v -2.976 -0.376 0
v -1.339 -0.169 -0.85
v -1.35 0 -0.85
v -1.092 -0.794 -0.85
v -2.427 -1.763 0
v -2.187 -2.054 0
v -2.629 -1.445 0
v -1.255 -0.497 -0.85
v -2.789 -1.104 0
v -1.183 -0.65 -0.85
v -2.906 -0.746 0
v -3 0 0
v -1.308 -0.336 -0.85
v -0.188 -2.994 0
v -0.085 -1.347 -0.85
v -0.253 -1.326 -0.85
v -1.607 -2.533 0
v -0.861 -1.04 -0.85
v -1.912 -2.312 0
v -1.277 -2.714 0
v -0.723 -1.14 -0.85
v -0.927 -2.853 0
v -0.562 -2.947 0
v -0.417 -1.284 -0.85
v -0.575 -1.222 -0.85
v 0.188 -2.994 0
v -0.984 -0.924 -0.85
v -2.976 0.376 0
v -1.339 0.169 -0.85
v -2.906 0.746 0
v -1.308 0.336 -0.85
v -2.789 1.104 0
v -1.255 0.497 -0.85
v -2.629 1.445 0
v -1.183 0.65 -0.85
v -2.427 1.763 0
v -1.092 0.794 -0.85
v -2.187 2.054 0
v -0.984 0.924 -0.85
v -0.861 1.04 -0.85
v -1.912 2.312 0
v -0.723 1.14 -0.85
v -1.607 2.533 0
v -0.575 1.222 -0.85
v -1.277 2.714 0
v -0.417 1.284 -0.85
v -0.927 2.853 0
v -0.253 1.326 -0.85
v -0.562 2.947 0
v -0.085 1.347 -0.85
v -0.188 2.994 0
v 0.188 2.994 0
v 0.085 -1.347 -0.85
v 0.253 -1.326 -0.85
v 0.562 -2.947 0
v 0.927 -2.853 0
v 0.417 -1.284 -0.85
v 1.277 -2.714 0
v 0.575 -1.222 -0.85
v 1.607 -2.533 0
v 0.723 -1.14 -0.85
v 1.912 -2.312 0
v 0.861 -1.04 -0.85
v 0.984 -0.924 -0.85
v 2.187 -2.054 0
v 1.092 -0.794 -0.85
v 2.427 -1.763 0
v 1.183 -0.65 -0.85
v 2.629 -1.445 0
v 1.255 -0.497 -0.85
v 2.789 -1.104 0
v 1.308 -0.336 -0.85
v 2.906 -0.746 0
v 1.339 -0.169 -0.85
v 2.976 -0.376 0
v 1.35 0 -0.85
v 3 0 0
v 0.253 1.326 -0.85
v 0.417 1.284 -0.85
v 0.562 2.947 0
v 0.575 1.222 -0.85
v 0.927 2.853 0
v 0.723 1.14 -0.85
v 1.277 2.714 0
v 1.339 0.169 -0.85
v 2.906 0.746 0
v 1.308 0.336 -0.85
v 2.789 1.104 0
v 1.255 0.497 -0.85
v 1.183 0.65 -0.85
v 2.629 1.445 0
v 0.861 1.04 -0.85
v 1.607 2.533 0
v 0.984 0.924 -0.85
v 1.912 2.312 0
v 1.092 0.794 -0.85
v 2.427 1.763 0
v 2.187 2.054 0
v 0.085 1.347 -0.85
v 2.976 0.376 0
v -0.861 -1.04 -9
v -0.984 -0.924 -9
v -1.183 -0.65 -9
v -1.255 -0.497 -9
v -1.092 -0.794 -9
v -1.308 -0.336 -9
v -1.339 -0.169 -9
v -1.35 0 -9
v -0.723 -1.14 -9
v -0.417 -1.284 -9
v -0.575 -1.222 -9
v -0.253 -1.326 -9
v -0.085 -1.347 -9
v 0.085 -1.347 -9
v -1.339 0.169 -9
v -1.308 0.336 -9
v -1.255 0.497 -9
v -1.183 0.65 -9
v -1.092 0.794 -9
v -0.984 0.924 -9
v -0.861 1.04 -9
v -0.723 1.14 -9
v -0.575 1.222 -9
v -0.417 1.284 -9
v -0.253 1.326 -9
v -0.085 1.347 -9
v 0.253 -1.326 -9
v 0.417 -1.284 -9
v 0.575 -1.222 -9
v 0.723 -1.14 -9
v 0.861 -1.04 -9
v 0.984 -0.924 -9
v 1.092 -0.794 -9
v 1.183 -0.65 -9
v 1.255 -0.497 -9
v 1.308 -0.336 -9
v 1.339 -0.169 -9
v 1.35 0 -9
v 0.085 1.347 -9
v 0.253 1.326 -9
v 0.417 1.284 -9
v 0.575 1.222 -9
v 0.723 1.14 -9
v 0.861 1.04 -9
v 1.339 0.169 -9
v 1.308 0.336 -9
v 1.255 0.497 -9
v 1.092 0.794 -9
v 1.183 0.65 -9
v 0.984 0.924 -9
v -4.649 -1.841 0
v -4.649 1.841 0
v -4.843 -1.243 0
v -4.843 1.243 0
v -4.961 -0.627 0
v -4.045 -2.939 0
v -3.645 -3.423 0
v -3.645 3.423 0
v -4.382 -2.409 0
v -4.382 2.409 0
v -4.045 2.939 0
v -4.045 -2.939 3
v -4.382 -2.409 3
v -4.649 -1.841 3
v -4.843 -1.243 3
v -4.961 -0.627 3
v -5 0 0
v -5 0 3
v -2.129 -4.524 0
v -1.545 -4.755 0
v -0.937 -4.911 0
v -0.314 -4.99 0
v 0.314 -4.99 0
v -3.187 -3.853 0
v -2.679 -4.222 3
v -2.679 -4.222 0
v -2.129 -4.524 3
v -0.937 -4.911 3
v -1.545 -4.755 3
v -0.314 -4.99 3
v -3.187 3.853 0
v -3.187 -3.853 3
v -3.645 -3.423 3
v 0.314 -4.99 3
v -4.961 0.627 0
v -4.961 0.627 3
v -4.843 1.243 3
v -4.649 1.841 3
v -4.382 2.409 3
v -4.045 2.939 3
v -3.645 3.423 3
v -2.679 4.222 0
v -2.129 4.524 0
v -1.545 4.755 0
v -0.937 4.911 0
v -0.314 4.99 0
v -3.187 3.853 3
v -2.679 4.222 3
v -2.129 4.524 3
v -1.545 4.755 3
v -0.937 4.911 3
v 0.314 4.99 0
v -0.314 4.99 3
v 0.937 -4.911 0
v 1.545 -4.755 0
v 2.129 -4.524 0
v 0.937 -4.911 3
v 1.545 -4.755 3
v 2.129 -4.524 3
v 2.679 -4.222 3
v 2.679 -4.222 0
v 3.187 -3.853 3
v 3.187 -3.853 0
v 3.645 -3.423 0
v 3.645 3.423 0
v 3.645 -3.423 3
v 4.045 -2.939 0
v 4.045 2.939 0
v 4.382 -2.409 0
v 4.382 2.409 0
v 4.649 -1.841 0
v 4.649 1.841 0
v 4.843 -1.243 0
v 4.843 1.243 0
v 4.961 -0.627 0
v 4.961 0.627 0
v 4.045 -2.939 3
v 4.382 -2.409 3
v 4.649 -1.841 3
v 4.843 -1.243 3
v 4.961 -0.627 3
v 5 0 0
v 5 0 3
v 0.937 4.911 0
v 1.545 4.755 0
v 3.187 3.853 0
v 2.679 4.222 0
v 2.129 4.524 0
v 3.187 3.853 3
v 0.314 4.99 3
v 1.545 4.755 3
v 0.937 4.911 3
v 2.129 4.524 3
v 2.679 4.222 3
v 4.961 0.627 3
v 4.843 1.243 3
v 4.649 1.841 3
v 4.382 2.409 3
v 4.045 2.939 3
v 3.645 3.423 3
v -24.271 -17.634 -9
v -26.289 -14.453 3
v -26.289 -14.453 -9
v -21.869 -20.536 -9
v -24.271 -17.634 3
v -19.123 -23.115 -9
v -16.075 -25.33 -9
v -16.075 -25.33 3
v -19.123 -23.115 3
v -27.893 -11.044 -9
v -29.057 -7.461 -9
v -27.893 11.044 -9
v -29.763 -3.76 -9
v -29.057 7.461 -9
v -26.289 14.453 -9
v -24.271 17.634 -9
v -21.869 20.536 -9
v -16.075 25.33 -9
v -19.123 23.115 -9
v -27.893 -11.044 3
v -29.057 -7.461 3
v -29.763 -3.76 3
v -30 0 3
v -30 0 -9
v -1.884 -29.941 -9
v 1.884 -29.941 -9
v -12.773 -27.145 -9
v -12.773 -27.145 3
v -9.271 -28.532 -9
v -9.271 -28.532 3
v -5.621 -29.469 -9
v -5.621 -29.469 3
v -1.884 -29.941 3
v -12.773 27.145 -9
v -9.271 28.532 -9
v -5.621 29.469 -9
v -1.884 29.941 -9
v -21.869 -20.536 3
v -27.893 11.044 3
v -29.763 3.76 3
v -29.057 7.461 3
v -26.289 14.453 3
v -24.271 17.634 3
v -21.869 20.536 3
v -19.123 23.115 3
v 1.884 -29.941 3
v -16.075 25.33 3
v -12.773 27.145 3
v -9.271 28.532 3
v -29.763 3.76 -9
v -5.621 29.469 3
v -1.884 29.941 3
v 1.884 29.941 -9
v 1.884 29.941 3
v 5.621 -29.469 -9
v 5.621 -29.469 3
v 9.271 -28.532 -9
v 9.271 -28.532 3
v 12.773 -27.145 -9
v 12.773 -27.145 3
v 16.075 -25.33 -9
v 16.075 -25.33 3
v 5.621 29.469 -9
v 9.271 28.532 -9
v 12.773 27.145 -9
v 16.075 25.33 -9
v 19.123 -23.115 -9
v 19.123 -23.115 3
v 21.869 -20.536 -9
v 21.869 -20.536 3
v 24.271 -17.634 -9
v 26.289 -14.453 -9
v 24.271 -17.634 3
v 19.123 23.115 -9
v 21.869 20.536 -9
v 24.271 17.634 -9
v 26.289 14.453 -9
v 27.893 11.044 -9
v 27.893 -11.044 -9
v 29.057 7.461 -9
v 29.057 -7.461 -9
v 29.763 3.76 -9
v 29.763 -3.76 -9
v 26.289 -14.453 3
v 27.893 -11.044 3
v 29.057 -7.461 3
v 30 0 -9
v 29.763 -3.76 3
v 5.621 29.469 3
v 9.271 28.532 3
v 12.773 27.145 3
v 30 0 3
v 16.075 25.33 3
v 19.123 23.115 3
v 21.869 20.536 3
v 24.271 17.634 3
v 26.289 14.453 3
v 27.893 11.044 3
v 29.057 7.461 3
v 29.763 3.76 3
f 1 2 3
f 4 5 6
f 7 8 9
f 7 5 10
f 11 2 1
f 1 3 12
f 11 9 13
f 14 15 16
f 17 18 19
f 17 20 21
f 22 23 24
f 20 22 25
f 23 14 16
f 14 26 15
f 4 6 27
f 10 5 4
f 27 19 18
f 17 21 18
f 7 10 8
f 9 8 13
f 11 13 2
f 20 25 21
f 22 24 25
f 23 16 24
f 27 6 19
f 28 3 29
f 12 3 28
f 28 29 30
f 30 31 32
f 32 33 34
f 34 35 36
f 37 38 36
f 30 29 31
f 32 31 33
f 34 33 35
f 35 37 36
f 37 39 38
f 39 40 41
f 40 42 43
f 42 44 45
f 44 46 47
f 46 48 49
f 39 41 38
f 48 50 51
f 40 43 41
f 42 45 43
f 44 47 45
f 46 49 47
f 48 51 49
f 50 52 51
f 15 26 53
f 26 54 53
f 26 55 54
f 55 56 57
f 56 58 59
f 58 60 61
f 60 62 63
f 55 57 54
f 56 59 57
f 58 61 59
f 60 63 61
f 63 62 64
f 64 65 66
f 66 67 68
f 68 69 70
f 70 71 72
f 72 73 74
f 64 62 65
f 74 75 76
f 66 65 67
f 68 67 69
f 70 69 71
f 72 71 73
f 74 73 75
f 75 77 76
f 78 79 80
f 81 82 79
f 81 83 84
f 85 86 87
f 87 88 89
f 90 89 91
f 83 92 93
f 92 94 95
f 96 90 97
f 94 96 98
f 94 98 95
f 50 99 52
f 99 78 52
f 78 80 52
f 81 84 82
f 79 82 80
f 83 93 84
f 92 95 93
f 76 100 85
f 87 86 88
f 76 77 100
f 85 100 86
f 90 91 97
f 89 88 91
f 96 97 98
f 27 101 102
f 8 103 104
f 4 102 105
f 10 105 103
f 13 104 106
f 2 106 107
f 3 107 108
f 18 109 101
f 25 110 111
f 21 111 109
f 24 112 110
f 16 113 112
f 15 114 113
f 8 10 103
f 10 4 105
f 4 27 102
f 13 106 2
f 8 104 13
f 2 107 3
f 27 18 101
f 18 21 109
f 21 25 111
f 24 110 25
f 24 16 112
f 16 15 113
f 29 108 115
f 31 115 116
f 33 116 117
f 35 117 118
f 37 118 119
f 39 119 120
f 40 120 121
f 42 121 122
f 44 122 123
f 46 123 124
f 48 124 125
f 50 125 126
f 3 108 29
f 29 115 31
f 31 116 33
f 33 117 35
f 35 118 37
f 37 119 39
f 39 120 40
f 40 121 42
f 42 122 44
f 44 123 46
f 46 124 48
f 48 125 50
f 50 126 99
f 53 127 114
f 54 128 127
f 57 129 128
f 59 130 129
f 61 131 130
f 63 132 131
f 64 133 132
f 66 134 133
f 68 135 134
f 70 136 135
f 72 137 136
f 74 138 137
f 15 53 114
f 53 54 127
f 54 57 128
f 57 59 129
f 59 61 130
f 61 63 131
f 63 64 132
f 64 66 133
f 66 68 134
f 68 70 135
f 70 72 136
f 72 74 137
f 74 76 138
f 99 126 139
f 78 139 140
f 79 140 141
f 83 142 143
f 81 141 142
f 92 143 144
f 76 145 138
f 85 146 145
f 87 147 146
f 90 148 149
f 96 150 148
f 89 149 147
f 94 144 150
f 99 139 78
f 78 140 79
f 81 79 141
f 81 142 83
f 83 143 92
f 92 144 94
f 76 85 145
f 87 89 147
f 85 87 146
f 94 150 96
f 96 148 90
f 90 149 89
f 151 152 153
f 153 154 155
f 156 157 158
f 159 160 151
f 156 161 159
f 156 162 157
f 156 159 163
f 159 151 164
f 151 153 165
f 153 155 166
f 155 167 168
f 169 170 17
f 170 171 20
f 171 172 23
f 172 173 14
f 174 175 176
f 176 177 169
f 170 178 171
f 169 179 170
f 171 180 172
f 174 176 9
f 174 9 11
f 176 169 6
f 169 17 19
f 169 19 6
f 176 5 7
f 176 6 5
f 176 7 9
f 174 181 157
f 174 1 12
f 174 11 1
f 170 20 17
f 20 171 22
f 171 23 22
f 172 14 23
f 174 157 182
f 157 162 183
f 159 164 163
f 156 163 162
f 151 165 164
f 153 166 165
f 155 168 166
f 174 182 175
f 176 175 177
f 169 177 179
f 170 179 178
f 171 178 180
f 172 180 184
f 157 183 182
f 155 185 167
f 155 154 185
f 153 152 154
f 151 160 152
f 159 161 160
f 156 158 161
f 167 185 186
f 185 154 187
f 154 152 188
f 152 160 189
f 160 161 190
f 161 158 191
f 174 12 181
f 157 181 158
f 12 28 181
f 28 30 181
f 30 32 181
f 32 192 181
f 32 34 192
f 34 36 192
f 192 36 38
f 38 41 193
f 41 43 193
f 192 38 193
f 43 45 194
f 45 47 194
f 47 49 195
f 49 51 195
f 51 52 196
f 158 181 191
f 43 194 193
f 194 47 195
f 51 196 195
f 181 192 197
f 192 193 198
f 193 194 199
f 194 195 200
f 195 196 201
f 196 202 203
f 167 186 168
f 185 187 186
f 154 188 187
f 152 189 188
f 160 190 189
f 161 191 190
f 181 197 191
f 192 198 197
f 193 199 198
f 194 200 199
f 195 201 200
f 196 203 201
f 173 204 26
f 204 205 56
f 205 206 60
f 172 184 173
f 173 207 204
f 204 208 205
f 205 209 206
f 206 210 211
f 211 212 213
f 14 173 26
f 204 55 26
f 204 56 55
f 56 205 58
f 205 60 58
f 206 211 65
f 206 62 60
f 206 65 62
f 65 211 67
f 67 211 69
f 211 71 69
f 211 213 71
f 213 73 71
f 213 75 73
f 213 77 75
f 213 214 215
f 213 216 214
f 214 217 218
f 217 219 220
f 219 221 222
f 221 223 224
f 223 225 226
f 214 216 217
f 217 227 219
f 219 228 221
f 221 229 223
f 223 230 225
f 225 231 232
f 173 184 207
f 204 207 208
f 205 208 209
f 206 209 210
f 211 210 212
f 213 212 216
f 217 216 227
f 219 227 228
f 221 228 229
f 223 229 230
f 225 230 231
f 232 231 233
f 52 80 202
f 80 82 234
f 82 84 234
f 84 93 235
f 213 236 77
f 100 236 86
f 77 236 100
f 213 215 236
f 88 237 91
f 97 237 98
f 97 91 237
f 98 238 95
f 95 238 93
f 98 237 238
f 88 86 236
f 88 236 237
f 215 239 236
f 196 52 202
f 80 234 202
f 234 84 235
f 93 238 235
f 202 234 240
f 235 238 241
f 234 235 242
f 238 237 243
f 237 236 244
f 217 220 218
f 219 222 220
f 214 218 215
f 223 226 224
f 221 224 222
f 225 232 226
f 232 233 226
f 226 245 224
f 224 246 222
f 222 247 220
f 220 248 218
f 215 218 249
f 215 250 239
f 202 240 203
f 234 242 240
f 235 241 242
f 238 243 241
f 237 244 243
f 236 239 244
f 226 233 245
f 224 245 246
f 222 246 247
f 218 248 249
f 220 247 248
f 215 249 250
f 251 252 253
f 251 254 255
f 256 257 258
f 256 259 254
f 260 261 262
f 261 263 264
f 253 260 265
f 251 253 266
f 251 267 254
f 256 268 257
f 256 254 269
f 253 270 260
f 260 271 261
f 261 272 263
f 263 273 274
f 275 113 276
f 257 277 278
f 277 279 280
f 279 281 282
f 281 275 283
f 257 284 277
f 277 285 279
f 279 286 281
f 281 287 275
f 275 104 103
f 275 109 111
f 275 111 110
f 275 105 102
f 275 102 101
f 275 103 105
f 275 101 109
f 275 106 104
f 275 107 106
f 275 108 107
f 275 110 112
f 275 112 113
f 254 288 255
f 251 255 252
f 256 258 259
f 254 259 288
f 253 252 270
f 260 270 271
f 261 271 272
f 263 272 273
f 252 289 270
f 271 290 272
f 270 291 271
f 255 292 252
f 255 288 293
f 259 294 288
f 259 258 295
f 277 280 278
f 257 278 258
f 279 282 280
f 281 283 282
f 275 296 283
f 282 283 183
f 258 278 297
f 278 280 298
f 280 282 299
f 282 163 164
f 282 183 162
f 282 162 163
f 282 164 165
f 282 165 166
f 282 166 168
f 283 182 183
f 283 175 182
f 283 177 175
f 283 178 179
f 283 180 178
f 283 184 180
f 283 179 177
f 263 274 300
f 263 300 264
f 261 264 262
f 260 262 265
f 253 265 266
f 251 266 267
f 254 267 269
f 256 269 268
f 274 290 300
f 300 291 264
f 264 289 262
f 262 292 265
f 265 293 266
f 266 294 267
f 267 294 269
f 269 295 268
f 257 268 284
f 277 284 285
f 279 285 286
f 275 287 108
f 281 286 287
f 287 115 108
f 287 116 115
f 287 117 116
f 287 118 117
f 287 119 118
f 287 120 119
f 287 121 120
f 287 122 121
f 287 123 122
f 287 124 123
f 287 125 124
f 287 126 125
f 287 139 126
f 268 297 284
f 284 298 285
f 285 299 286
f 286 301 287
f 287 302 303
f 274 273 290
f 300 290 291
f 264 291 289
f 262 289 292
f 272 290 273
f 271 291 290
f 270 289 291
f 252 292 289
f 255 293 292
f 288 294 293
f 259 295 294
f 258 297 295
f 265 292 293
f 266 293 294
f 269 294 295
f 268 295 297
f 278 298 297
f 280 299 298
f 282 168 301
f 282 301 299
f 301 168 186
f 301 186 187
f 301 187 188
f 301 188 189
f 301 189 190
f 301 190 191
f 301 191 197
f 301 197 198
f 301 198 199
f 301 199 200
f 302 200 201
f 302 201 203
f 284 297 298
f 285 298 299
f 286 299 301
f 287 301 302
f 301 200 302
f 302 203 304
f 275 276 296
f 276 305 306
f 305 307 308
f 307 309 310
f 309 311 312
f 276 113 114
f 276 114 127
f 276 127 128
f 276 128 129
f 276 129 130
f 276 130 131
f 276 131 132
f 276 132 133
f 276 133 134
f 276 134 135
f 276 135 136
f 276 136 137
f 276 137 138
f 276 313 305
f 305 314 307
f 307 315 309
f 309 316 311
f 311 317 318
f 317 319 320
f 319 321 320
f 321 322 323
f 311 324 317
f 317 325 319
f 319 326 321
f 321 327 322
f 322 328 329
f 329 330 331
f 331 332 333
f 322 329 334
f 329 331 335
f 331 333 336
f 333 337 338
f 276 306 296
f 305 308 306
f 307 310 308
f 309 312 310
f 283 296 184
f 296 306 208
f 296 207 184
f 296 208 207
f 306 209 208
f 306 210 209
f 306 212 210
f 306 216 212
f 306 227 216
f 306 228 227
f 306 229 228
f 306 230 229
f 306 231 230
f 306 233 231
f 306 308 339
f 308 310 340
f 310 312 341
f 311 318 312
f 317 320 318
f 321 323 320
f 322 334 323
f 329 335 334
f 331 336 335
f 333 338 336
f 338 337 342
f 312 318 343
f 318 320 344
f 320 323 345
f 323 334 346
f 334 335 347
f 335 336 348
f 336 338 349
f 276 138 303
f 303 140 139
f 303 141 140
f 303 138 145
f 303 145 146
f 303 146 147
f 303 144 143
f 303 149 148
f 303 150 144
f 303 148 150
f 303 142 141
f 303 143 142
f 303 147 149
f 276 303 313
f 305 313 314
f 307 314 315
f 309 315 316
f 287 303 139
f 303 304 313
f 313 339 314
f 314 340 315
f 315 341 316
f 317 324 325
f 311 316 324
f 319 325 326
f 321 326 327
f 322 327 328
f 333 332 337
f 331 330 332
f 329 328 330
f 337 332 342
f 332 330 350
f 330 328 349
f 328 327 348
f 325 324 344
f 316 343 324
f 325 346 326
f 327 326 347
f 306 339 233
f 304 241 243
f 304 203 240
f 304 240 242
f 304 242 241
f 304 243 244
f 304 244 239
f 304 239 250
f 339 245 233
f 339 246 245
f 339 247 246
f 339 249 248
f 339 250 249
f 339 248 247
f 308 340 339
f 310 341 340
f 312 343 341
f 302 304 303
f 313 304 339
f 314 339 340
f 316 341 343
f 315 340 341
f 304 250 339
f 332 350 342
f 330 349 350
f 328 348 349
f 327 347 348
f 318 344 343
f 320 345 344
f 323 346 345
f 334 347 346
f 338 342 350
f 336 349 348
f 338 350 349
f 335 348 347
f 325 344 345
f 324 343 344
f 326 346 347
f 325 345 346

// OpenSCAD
$fn = 50;

difference() {
	union() {
		translate(v = [0, 0, -9.0]) {
			cylinder(h = 12, r = 30.0);
		}
	}
	union() {
		translate(v = [0, 0, 0]) {
			rotate(a = [0, 0, 0]) {
				difference() {
					union() {
						translate(v = [0, 0, -12.0]) {
							cylinder(h = 12, r = 1.0);
						}
						translate(v = [0, 0, -0.85]) {
							cylinder(h = 0.85, r1 = 1.35, r2 = 3.0);
						}
						translate(v = [0, 0, -12.0]) {
							cylinder(h = 12, r = 1.35);
						}
						translate(v = [0, 0, -12.0]) {
							cylinder(h = 12, r = 1.0);
						}
					}
					union();
				}
			}
		}
		#cylinder(h = 3, r = 5.0);
	}
}
